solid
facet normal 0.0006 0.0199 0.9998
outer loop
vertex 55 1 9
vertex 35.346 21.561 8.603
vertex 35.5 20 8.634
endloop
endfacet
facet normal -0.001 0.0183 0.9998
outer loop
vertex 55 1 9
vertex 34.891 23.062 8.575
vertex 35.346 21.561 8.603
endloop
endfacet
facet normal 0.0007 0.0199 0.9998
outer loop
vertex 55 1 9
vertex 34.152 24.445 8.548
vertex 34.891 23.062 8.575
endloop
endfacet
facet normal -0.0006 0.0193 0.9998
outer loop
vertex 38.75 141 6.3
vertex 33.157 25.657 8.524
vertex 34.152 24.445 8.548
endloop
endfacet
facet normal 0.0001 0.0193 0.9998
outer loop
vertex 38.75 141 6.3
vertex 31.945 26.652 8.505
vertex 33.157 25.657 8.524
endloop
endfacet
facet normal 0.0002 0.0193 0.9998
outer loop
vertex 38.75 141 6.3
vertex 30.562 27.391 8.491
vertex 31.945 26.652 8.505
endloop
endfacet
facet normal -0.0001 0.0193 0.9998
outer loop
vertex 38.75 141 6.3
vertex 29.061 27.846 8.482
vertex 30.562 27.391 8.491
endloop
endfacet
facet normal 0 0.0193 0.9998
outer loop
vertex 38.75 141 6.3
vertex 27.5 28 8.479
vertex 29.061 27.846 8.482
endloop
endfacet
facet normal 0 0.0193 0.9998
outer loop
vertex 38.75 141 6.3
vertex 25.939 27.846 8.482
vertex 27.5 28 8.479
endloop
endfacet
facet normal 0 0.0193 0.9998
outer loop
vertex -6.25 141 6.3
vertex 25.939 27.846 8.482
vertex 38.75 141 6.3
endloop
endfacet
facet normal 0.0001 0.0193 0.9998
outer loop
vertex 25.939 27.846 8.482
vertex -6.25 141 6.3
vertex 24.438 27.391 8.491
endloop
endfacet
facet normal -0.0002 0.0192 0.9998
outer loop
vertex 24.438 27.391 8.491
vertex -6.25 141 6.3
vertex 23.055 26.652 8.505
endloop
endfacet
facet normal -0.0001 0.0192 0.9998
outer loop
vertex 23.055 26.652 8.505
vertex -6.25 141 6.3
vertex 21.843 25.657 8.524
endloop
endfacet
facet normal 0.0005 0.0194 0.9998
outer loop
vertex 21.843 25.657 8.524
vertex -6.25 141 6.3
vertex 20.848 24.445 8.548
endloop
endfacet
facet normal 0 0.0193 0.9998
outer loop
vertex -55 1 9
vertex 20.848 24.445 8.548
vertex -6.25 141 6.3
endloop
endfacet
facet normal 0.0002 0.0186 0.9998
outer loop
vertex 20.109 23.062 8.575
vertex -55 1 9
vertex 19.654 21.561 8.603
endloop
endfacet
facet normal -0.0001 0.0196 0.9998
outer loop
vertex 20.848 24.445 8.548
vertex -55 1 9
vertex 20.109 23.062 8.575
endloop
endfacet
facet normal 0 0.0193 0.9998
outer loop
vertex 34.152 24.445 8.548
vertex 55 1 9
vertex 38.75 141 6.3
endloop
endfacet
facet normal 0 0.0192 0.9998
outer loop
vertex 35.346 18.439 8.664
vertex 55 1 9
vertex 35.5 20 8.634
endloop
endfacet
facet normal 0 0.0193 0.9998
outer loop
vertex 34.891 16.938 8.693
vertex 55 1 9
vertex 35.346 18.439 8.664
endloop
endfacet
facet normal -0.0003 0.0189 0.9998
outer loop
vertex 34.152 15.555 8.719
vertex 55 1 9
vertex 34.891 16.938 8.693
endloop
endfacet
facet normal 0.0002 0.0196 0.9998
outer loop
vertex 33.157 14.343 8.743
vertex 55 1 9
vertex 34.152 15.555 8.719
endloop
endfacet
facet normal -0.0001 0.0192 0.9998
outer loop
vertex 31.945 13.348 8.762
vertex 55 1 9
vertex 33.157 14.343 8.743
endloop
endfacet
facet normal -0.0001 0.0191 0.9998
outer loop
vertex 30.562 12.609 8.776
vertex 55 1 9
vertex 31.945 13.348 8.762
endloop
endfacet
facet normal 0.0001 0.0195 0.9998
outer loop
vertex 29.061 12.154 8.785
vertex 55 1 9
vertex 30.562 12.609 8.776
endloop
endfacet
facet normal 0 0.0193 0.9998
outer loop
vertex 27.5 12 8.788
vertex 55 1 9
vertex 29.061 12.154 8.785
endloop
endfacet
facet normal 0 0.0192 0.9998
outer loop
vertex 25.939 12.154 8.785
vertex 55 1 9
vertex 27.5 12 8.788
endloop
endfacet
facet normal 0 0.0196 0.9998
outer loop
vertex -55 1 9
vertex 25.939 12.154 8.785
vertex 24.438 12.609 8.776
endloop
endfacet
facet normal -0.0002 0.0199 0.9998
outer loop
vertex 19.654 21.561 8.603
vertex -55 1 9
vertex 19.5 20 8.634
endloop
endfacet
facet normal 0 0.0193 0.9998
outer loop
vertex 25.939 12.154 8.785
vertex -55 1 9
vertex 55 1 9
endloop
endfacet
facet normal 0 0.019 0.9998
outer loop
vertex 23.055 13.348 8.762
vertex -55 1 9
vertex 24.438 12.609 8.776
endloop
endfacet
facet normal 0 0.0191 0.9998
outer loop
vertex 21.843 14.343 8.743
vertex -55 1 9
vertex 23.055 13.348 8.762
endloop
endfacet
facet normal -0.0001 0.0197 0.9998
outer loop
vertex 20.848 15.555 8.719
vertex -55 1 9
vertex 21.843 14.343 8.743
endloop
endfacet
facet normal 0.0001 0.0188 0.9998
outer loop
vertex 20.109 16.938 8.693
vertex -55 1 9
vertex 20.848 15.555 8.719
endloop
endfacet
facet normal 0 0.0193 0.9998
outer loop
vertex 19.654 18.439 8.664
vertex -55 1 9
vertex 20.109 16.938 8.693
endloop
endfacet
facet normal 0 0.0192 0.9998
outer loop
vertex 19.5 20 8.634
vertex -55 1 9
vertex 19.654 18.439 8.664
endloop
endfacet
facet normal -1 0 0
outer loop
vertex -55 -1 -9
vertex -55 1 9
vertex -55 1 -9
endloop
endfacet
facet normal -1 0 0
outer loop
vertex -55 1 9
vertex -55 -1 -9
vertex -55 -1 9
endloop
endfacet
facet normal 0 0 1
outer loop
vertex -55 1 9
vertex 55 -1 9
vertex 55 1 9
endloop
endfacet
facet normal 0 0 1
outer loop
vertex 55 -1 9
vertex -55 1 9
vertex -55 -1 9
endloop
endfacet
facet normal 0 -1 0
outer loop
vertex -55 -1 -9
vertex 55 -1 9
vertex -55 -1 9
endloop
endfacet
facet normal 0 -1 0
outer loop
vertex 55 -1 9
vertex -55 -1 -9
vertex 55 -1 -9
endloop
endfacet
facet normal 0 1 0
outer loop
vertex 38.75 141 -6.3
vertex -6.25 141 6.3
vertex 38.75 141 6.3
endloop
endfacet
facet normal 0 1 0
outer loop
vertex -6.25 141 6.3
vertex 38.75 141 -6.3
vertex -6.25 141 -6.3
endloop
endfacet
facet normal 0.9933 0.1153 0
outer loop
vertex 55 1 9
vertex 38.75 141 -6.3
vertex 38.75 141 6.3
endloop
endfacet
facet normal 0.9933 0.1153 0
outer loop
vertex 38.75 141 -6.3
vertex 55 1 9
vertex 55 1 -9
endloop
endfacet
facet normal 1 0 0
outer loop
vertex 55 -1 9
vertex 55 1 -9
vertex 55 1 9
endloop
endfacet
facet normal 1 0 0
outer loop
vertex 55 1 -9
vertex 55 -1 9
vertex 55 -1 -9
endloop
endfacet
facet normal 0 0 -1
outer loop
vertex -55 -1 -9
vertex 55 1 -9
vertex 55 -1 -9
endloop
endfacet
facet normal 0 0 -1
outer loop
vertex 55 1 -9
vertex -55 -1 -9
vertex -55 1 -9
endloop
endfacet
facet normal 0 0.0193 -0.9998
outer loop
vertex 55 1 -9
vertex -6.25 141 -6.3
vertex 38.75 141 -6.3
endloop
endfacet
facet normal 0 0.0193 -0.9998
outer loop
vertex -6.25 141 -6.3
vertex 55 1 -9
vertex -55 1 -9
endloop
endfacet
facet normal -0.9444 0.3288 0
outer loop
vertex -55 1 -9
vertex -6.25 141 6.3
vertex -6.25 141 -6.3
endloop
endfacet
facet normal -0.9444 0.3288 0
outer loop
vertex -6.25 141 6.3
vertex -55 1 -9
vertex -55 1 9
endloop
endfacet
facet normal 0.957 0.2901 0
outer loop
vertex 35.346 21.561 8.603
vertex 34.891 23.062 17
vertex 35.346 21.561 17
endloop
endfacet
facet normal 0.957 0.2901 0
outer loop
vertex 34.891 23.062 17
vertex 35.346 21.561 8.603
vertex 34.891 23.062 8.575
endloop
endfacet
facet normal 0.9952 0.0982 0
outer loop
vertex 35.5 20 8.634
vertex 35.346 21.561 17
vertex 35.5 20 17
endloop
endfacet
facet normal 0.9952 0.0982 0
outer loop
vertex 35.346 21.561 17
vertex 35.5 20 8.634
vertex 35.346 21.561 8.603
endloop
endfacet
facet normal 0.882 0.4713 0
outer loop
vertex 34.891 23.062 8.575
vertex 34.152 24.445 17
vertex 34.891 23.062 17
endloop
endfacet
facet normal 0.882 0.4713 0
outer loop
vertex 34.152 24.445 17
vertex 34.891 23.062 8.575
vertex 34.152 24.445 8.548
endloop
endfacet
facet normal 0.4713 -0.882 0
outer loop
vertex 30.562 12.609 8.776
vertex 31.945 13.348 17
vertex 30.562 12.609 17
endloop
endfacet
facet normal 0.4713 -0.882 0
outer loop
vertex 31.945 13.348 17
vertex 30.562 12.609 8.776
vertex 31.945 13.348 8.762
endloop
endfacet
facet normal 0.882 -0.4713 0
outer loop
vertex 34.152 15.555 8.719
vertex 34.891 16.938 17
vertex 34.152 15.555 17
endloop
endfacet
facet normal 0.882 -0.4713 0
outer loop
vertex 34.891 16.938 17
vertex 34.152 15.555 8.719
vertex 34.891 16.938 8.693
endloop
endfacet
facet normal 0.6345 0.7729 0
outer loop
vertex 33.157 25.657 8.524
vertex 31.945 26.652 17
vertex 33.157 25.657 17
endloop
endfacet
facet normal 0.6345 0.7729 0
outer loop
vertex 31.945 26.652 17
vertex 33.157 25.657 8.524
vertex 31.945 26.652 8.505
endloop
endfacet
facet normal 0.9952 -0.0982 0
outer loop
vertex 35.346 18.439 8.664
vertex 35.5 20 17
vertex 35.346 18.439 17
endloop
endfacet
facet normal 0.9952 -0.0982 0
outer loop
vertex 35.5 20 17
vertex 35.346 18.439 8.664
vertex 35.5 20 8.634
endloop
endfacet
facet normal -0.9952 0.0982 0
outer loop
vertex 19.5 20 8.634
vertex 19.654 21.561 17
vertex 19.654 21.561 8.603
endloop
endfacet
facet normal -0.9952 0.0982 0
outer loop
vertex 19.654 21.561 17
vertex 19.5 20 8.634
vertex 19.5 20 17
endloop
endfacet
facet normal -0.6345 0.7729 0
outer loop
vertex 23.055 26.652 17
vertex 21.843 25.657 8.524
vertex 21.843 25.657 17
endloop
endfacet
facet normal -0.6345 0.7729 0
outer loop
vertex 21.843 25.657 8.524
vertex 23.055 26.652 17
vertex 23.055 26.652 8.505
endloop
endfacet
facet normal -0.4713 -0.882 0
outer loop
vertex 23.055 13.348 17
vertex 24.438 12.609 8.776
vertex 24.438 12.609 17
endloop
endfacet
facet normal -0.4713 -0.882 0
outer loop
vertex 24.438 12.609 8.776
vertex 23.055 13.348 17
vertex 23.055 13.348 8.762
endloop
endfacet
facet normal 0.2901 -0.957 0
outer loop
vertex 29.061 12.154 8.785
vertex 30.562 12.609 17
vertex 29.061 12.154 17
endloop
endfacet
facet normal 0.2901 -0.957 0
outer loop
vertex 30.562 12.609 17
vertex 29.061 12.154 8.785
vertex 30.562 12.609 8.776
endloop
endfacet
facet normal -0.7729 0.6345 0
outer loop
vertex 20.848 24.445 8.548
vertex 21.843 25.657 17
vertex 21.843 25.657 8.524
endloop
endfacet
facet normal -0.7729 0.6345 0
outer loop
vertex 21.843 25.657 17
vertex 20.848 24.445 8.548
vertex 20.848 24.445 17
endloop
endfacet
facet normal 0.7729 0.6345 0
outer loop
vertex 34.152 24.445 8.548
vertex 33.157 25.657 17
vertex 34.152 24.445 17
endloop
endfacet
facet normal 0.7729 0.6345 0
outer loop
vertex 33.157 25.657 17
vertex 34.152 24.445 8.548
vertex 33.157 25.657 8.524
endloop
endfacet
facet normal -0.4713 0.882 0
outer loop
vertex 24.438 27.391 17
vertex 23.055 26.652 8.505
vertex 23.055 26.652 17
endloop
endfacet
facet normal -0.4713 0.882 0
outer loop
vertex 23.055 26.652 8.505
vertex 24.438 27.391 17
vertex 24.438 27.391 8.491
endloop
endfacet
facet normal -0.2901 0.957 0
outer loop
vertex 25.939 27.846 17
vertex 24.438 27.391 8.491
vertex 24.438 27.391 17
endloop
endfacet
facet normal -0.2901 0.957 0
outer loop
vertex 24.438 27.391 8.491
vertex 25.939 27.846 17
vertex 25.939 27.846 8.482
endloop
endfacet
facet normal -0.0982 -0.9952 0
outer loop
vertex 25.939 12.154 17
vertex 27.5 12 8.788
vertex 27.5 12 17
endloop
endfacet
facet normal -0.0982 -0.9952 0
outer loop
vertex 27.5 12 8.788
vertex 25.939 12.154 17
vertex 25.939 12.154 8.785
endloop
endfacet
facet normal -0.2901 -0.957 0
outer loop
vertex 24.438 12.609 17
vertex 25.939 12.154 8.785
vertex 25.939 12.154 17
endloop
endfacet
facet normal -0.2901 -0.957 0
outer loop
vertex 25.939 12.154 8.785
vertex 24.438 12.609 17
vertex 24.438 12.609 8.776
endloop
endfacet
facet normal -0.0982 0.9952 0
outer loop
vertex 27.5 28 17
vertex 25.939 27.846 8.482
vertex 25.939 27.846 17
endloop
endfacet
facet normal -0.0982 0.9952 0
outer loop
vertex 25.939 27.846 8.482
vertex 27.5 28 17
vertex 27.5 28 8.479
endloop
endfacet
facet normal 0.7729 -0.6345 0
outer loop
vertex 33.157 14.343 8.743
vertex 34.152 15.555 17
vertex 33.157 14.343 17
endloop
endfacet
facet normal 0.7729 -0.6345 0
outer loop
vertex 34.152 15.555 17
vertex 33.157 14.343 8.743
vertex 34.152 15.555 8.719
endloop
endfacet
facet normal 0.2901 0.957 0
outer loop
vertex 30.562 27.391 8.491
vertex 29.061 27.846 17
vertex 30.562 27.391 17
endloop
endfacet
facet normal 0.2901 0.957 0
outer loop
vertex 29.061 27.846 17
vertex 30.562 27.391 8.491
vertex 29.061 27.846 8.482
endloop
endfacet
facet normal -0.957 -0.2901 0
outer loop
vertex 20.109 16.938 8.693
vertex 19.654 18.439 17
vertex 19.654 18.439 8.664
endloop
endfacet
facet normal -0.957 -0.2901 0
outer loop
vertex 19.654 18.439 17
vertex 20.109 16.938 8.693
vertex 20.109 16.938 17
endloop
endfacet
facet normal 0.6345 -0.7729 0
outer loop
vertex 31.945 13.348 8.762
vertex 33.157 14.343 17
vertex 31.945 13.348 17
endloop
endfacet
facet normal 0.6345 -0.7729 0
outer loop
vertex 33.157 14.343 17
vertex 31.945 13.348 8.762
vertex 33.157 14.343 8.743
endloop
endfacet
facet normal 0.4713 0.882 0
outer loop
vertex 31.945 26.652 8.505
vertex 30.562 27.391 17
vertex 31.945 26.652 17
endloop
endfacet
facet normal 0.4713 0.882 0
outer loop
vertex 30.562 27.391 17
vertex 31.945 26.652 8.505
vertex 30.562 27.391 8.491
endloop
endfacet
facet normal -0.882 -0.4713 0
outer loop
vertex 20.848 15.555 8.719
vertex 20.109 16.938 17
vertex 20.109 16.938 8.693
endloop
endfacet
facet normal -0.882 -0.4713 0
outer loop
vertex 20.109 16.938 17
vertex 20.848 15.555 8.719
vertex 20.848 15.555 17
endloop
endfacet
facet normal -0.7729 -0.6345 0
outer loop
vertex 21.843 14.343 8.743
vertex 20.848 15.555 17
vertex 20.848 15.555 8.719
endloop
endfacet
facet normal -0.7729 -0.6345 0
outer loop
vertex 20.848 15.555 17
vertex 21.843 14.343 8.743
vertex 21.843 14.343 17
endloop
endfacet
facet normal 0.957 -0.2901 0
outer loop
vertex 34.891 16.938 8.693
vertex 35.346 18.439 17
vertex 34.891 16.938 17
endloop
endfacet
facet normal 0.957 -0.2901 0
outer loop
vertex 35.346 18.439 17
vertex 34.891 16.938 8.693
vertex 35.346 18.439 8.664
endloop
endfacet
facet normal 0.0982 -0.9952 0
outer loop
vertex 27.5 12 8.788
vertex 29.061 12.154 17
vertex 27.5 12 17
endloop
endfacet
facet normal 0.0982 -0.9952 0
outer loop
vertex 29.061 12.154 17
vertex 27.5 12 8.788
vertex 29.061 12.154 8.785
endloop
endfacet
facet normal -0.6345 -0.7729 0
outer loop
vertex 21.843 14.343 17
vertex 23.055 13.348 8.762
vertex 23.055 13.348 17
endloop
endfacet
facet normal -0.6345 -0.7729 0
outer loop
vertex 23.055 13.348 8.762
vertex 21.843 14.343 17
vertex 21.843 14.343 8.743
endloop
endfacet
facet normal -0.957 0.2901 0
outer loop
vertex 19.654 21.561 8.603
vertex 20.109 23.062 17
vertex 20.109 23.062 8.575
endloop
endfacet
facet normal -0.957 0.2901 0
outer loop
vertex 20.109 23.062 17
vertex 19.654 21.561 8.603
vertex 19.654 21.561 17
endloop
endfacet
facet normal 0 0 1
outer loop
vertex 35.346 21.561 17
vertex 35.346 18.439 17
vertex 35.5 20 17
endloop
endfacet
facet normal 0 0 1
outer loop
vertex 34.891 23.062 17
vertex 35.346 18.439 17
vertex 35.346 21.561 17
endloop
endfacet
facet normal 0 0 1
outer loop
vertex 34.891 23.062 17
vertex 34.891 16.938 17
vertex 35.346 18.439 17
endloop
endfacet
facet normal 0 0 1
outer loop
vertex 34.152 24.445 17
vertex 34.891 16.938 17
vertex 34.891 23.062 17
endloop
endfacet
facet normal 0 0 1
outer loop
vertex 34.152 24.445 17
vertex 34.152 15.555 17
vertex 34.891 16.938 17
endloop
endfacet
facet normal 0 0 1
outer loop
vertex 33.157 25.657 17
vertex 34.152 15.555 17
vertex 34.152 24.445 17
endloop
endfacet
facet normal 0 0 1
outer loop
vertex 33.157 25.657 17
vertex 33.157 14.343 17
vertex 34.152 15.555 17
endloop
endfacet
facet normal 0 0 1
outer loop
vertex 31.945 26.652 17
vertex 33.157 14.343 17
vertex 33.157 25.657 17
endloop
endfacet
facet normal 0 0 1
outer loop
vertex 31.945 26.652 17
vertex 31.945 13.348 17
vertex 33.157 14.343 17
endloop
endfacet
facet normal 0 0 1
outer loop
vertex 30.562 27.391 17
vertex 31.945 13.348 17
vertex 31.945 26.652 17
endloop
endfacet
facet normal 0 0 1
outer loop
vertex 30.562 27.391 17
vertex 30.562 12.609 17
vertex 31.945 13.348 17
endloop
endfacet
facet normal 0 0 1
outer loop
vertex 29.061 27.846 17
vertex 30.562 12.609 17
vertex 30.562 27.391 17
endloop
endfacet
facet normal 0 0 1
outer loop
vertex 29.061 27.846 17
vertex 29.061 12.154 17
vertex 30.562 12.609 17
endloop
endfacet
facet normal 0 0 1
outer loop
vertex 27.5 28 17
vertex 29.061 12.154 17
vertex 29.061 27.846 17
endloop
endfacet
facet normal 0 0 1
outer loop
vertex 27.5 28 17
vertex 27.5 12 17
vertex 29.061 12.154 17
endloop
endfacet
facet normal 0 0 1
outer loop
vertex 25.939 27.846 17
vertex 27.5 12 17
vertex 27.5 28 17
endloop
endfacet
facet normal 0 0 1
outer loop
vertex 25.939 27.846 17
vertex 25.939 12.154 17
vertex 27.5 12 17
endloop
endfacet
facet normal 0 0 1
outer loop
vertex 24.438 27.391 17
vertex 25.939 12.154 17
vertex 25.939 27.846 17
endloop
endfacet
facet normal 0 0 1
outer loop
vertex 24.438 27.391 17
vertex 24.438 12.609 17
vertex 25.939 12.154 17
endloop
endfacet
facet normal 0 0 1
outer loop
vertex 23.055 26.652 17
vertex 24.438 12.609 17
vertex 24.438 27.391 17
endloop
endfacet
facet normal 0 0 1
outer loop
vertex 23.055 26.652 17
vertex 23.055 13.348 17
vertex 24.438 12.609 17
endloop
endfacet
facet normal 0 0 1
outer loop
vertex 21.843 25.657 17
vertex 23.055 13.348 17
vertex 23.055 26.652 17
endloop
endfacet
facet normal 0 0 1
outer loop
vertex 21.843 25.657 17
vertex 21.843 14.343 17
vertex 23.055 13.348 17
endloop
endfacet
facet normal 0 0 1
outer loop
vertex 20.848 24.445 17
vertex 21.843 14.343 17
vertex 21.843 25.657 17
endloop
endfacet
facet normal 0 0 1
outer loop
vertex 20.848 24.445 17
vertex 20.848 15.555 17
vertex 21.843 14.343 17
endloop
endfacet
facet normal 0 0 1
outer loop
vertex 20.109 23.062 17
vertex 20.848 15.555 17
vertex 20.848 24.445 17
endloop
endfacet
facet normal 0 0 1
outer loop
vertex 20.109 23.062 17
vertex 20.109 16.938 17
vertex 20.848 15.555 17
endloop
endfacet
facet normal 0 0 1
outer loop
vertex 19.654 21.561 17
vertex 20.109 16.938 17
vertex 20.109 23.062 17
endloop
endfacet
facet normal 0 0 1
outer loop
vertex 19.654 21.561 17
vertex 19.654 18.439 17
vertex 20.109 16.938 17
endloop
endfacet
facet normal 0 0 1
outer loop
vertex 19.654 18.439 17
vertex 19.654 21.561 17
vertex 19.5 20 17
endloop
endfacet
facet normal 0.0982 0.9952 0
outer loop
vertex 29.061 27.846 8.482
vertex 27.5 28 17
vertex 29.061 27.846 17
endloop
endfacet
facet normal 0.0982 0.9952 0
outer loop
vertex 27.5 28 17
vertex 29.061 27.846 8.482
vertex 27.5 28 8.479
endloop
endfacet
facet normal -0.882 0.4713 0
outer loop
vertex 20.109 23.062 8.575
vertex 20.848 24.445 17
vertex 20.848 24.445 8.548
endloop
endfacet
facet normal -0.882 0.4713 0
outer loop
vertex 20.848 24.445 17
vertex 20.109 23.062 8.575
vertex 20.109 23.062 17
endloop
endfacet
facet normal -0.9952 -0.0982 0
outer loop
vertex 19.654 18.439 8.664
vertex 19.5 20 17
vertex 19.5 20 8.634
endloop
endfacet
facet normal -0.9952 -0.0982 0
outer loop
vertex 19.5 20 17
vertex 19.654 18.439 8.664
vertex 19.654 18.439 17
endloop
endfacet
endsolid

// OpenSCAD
// ISM-FJ-TOOL-050 — Wing lower-skin layup tool (male, study mm). Issue #106.
// Vacuum boss sinks into tool face for manifold union.

root_chord = 110;
tip_chord = 45;
semi_span = 140;
tool_t = 18;
boss_sink = 2;

module wing_skin_layup_tool() {
    union() {
        hull() {
            translate([0, 0, 0]) cube([root_chord, 2, tool_t], center = true);
            translate([(root_chord - tip_chord) / 4, semi_span, 0])
                cube([tip_chord, 2, tool_t * 0.7], center = true);
        }
        translate([root_chord / 4, 20, tool_t / 2 - boss_sink])
            cylinder(h = 8 + boss_sink, d = 16, $fn = 32);
    }
}

wing_skin_layup_tool();
